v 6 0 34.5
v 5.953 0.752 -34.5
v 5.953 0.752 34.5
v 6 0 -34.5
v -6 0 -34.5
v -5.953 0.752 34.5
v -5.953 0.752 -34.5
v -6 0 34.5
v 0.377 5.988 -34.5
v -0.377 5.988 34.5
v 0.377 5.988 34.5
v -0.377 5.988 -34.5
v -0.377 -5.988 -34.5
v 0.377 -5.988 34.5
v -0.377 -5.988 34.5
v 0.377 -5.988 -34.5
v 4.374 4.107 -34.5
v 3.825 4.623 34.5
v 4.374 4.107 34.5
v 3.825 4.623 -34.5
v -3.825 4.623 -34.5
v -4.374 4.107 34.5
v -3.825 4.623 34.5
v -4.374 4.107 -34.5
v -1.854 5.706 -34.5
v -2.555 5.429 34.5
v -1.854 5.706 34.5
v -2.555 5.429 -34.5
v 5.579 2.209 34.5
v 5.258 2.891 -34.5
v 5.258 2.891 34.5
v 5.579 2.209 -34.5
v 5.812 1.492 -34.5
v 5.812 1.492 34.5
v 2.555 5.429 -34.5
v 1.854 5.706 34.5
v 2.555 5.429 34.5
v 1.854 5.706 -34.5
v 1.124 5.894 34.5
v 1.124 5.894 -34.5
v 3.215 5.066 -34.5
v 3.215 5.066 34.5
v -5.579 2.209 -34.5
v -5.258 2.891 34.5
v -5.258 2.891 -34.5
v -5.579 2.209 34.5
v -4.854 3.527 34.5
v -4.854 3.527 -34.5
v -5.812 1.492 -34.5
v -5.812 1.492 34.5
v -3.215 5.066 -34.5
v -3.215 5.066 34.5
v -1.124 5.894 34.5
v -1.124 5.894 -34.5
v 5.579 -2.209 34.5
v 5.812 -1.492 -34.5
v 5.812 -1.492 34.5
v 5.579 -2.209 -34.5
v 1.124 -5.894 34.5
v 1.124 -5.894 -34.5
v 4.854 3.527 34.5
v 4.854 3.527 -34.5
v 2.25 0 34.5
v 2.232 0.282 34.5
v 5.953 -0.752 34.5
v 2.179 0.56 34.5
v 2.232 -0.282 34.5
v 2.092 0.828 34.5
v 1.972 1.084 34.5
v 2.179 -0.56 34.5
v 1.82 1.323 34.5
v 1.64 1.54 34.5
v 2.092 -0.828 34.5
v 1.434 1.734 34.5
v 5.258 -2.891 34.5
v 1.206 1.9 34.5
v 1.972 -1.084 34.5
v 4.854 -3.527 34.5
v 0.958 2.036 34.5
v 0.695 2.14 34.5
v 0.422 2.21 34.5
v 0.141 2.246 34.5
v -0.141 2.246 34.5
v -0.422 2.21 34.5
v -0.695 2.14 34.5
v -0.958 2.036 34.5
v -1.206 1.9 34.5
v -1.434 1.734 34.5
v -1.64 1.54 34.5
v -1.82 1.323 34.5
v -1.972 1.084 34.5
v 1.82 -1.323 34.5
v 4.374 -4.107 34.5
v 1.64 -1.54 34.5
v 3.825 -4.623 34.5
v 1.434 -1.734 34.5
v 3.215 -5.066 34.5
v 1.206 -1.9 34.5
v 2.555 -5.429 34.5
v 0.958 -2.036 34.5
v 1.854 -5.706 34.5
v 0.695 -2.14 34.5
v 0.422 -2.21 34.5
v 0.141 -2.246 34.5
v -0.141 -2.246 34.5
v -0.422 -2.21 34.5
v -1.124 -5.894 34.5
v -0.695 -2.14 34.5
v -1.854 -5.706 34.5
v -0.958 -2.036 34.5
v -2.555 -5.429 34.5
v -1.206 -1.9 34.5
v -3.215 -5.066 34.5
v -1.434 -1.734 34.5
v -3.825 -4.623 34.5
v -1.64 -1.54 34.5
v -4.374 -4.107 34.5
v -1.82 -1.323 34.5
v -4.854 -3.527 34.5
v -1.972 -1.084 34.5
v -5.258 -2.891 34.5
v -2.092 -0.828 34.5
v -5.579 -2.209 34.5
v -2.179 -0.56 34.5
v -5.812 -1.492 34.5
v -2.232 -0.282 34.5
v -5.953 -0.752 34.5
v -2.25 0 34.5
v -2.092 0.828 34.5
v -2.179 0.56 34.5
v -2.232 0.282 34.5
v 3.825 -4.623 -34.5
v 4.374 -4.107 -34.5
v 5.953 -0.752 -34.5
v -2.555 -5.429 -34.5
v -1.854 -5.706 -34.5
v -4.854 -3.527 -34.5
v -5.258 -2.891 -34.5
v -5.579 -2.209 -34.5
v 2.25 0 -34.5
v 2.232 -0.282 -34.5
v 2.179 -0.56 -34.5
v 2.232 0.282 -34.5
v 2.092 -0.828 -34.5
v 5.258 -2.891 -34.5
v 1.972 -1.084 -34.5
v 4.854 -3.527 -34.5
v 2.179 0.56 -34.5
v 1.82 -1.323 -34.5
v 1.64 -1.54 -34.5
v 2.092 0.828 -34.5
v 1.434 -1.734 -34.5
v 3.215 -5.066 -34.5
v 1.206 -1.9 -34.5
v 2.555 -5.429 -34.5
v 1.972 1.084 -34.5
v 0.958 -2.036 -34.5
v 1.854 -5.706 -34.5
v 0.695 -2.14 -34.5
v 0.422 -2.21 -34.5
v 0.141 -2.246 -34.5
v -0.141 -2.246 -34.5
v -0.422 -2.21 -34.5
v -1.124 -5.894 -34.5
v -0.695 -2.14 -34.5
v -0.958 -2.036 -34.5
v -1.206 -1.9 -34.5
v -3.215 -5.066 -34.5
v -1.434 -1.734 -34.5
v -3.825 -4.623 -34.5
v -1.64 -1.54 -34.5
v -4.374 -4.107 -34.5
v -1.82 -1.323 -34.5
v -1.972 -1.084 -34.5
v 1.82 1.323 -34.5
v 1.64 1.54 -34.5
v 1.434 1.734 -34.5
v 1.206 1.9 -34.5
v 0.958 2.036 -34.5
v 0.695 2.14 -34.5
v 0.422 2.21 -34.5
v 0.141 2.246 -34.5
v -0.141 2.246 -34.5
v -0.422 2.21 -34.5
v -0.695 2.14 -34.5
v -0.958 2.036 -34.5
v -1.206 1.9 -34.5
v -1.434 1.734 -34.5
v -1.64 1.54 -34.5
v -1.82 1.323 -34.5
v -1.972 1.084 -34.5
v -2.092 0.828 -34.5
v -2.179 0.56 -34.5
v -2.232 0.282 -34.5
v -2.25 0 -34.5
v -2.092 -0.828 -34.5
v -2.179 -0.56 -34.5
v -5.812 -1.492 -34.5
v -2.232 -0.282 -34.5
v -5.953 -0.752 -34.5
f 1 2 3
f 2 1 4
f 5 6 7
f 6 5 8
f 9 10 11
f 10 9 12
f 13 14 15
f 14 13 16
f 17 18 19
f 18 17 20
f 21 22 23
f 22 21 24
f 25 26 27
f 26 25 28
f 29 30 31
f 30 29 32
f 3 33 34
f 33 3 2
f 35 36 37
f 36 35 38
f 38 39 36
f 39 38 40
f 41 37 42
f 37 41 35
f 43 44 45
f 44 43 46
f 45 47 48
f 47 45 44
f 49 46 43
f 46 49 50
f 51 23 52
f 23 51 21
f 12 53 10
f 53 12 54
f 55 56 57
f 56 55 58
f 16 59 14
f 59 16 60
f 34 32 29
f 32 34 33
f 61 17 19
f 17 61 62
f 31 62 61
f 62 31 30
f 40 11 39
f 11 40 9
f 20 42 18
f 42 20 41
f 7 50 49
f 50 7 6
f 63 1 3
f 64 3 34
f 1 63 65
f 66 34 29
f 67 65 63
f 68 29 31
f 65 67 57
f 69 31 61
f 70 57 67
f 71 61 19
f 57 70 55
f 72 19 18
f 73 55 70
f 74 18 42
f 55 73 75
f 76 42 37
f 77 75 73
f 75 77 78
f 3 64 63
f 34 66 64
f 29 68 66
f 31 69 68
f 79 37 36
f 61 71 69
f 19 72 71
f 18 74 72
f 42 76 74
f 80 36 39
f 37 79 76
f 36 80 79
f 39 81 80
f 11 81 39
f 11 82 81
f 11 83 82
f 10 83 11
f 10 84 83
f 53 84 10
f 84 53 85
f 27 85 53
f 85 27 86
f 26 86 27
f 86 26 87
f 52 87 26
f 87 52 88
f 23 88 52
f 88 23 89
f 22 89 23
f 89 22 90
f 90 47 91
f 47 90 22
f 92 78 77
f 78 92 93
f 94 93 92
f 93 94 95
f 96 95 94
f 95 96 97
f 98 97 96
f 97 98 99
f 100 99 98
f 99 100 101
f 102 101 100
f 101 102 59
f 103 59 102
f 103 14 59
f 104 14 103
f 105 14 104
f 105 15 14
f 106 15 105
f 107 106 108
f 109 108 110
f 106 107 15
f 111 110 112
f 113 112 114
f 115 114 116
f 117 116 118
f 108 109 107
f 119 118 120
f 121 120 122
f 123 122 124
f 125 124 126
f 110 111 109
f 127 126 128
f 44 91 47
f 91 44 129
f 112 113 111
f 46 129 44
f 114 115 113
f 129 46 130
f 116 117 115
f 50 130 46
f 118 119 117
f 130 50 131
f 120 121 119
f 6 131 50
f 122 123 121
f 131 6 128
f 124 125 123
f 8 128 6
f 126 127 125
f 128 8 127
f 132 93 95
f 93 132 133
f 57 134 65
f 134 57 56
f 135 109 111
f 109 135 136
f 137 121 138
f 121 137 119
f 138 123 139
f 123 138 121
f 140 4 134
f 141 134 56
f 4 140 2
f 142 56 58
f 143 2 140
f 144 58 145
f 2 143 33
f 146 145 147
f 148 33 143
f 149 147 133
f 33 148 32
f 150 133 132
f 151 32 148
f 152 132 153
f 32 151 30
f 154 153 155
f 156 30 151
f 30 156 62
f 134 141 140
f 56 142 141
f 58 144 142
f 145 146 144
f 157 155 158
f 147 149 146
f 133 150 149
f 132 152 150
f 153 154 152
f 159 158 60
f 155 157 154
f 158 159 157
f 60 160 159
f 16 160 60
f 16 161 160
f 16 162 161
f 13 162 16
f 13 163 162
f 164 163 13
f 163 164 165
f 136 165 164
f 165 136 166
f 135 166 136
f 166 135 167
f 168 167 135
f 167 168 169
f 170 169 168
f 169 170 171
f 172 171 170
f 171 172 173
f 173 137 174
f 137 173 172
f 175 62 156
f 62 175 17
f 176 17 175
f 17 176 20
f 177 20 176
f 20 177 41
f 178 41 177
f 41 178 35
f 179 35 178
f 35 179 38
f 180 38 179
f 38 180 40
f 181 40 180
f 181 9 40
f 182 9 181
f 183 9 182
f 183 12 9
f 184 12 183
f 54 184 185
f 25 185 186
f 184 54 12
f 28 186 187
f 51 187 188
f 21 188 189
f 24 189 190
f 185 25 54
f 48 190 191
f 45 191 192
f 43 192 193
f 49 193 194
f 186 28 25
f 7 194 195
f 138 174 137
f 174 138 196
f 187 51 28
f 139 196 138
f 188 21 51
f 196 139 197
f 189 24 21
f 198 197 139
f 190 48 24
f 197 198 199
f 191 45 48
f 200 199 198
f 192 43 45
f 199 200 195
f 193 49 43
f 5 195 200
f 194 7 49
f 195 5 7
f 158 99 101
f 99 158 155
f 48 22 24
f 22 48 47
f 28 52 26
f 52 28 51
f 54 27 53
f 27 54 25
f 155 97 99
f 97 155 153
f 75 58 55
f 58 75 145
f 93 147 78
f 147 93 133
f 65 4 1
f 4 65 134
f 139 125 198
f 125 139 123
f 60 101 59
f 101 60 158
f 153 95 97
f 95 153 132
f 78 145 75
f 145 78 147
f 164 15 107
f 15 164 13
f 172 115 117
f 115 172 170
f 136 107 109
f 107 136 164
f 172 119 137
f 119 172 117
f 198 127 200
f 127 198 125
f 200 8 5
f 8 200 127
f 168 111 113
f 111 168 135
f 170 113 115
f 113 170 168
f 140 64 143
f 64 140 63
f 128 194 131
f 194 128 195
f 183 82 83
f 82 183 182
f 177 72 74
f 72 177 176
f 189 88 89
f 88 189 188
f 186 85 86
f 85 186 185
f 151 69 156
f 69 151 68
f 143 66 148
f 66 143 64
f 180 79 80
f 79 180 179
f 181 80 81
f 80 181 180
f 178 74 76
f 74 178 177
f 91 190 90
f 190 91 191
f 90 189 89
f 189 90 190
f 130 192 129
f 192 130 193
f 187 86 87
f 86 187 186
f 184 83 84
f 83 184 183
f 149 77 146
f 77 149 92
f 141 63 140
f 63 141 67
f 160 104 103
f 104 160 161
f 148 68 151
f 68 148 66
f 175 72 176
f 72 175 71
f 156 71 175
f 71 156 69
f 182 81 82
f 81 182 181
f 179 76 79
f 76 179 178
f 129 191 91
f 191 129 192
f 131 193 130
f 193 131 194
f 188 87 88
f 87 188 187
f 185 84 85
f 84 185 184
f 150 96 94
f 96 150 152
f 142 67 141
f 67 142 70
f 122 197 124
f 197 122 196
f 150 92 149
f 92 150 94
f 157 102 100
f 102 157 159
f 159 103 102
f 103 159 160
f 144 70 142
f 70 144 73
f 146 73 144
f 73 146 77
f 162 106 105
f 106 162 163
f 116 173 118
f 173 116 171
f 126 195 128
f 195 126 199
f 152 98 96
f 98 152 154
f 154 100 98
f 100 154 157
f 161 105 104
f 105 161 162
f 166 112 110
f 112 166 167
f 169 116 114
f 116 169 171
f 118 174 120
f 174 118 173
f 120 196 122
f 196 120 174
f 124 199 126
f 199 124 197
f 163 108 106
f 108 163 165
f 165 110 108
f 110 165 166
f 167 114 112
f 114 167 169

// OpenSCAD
$fn = 50;


difference() {
	union() {
		translate(v = [0, 0, -34.5000000000]) {
			cylinder(h = 69, r = 6.0000000000);
		}
	}
	union() {
		translate(v = [0, 0, -100.0000000000]) {
			cylinder(h = 200, r = 2.2500000000);
		}
	}
}
